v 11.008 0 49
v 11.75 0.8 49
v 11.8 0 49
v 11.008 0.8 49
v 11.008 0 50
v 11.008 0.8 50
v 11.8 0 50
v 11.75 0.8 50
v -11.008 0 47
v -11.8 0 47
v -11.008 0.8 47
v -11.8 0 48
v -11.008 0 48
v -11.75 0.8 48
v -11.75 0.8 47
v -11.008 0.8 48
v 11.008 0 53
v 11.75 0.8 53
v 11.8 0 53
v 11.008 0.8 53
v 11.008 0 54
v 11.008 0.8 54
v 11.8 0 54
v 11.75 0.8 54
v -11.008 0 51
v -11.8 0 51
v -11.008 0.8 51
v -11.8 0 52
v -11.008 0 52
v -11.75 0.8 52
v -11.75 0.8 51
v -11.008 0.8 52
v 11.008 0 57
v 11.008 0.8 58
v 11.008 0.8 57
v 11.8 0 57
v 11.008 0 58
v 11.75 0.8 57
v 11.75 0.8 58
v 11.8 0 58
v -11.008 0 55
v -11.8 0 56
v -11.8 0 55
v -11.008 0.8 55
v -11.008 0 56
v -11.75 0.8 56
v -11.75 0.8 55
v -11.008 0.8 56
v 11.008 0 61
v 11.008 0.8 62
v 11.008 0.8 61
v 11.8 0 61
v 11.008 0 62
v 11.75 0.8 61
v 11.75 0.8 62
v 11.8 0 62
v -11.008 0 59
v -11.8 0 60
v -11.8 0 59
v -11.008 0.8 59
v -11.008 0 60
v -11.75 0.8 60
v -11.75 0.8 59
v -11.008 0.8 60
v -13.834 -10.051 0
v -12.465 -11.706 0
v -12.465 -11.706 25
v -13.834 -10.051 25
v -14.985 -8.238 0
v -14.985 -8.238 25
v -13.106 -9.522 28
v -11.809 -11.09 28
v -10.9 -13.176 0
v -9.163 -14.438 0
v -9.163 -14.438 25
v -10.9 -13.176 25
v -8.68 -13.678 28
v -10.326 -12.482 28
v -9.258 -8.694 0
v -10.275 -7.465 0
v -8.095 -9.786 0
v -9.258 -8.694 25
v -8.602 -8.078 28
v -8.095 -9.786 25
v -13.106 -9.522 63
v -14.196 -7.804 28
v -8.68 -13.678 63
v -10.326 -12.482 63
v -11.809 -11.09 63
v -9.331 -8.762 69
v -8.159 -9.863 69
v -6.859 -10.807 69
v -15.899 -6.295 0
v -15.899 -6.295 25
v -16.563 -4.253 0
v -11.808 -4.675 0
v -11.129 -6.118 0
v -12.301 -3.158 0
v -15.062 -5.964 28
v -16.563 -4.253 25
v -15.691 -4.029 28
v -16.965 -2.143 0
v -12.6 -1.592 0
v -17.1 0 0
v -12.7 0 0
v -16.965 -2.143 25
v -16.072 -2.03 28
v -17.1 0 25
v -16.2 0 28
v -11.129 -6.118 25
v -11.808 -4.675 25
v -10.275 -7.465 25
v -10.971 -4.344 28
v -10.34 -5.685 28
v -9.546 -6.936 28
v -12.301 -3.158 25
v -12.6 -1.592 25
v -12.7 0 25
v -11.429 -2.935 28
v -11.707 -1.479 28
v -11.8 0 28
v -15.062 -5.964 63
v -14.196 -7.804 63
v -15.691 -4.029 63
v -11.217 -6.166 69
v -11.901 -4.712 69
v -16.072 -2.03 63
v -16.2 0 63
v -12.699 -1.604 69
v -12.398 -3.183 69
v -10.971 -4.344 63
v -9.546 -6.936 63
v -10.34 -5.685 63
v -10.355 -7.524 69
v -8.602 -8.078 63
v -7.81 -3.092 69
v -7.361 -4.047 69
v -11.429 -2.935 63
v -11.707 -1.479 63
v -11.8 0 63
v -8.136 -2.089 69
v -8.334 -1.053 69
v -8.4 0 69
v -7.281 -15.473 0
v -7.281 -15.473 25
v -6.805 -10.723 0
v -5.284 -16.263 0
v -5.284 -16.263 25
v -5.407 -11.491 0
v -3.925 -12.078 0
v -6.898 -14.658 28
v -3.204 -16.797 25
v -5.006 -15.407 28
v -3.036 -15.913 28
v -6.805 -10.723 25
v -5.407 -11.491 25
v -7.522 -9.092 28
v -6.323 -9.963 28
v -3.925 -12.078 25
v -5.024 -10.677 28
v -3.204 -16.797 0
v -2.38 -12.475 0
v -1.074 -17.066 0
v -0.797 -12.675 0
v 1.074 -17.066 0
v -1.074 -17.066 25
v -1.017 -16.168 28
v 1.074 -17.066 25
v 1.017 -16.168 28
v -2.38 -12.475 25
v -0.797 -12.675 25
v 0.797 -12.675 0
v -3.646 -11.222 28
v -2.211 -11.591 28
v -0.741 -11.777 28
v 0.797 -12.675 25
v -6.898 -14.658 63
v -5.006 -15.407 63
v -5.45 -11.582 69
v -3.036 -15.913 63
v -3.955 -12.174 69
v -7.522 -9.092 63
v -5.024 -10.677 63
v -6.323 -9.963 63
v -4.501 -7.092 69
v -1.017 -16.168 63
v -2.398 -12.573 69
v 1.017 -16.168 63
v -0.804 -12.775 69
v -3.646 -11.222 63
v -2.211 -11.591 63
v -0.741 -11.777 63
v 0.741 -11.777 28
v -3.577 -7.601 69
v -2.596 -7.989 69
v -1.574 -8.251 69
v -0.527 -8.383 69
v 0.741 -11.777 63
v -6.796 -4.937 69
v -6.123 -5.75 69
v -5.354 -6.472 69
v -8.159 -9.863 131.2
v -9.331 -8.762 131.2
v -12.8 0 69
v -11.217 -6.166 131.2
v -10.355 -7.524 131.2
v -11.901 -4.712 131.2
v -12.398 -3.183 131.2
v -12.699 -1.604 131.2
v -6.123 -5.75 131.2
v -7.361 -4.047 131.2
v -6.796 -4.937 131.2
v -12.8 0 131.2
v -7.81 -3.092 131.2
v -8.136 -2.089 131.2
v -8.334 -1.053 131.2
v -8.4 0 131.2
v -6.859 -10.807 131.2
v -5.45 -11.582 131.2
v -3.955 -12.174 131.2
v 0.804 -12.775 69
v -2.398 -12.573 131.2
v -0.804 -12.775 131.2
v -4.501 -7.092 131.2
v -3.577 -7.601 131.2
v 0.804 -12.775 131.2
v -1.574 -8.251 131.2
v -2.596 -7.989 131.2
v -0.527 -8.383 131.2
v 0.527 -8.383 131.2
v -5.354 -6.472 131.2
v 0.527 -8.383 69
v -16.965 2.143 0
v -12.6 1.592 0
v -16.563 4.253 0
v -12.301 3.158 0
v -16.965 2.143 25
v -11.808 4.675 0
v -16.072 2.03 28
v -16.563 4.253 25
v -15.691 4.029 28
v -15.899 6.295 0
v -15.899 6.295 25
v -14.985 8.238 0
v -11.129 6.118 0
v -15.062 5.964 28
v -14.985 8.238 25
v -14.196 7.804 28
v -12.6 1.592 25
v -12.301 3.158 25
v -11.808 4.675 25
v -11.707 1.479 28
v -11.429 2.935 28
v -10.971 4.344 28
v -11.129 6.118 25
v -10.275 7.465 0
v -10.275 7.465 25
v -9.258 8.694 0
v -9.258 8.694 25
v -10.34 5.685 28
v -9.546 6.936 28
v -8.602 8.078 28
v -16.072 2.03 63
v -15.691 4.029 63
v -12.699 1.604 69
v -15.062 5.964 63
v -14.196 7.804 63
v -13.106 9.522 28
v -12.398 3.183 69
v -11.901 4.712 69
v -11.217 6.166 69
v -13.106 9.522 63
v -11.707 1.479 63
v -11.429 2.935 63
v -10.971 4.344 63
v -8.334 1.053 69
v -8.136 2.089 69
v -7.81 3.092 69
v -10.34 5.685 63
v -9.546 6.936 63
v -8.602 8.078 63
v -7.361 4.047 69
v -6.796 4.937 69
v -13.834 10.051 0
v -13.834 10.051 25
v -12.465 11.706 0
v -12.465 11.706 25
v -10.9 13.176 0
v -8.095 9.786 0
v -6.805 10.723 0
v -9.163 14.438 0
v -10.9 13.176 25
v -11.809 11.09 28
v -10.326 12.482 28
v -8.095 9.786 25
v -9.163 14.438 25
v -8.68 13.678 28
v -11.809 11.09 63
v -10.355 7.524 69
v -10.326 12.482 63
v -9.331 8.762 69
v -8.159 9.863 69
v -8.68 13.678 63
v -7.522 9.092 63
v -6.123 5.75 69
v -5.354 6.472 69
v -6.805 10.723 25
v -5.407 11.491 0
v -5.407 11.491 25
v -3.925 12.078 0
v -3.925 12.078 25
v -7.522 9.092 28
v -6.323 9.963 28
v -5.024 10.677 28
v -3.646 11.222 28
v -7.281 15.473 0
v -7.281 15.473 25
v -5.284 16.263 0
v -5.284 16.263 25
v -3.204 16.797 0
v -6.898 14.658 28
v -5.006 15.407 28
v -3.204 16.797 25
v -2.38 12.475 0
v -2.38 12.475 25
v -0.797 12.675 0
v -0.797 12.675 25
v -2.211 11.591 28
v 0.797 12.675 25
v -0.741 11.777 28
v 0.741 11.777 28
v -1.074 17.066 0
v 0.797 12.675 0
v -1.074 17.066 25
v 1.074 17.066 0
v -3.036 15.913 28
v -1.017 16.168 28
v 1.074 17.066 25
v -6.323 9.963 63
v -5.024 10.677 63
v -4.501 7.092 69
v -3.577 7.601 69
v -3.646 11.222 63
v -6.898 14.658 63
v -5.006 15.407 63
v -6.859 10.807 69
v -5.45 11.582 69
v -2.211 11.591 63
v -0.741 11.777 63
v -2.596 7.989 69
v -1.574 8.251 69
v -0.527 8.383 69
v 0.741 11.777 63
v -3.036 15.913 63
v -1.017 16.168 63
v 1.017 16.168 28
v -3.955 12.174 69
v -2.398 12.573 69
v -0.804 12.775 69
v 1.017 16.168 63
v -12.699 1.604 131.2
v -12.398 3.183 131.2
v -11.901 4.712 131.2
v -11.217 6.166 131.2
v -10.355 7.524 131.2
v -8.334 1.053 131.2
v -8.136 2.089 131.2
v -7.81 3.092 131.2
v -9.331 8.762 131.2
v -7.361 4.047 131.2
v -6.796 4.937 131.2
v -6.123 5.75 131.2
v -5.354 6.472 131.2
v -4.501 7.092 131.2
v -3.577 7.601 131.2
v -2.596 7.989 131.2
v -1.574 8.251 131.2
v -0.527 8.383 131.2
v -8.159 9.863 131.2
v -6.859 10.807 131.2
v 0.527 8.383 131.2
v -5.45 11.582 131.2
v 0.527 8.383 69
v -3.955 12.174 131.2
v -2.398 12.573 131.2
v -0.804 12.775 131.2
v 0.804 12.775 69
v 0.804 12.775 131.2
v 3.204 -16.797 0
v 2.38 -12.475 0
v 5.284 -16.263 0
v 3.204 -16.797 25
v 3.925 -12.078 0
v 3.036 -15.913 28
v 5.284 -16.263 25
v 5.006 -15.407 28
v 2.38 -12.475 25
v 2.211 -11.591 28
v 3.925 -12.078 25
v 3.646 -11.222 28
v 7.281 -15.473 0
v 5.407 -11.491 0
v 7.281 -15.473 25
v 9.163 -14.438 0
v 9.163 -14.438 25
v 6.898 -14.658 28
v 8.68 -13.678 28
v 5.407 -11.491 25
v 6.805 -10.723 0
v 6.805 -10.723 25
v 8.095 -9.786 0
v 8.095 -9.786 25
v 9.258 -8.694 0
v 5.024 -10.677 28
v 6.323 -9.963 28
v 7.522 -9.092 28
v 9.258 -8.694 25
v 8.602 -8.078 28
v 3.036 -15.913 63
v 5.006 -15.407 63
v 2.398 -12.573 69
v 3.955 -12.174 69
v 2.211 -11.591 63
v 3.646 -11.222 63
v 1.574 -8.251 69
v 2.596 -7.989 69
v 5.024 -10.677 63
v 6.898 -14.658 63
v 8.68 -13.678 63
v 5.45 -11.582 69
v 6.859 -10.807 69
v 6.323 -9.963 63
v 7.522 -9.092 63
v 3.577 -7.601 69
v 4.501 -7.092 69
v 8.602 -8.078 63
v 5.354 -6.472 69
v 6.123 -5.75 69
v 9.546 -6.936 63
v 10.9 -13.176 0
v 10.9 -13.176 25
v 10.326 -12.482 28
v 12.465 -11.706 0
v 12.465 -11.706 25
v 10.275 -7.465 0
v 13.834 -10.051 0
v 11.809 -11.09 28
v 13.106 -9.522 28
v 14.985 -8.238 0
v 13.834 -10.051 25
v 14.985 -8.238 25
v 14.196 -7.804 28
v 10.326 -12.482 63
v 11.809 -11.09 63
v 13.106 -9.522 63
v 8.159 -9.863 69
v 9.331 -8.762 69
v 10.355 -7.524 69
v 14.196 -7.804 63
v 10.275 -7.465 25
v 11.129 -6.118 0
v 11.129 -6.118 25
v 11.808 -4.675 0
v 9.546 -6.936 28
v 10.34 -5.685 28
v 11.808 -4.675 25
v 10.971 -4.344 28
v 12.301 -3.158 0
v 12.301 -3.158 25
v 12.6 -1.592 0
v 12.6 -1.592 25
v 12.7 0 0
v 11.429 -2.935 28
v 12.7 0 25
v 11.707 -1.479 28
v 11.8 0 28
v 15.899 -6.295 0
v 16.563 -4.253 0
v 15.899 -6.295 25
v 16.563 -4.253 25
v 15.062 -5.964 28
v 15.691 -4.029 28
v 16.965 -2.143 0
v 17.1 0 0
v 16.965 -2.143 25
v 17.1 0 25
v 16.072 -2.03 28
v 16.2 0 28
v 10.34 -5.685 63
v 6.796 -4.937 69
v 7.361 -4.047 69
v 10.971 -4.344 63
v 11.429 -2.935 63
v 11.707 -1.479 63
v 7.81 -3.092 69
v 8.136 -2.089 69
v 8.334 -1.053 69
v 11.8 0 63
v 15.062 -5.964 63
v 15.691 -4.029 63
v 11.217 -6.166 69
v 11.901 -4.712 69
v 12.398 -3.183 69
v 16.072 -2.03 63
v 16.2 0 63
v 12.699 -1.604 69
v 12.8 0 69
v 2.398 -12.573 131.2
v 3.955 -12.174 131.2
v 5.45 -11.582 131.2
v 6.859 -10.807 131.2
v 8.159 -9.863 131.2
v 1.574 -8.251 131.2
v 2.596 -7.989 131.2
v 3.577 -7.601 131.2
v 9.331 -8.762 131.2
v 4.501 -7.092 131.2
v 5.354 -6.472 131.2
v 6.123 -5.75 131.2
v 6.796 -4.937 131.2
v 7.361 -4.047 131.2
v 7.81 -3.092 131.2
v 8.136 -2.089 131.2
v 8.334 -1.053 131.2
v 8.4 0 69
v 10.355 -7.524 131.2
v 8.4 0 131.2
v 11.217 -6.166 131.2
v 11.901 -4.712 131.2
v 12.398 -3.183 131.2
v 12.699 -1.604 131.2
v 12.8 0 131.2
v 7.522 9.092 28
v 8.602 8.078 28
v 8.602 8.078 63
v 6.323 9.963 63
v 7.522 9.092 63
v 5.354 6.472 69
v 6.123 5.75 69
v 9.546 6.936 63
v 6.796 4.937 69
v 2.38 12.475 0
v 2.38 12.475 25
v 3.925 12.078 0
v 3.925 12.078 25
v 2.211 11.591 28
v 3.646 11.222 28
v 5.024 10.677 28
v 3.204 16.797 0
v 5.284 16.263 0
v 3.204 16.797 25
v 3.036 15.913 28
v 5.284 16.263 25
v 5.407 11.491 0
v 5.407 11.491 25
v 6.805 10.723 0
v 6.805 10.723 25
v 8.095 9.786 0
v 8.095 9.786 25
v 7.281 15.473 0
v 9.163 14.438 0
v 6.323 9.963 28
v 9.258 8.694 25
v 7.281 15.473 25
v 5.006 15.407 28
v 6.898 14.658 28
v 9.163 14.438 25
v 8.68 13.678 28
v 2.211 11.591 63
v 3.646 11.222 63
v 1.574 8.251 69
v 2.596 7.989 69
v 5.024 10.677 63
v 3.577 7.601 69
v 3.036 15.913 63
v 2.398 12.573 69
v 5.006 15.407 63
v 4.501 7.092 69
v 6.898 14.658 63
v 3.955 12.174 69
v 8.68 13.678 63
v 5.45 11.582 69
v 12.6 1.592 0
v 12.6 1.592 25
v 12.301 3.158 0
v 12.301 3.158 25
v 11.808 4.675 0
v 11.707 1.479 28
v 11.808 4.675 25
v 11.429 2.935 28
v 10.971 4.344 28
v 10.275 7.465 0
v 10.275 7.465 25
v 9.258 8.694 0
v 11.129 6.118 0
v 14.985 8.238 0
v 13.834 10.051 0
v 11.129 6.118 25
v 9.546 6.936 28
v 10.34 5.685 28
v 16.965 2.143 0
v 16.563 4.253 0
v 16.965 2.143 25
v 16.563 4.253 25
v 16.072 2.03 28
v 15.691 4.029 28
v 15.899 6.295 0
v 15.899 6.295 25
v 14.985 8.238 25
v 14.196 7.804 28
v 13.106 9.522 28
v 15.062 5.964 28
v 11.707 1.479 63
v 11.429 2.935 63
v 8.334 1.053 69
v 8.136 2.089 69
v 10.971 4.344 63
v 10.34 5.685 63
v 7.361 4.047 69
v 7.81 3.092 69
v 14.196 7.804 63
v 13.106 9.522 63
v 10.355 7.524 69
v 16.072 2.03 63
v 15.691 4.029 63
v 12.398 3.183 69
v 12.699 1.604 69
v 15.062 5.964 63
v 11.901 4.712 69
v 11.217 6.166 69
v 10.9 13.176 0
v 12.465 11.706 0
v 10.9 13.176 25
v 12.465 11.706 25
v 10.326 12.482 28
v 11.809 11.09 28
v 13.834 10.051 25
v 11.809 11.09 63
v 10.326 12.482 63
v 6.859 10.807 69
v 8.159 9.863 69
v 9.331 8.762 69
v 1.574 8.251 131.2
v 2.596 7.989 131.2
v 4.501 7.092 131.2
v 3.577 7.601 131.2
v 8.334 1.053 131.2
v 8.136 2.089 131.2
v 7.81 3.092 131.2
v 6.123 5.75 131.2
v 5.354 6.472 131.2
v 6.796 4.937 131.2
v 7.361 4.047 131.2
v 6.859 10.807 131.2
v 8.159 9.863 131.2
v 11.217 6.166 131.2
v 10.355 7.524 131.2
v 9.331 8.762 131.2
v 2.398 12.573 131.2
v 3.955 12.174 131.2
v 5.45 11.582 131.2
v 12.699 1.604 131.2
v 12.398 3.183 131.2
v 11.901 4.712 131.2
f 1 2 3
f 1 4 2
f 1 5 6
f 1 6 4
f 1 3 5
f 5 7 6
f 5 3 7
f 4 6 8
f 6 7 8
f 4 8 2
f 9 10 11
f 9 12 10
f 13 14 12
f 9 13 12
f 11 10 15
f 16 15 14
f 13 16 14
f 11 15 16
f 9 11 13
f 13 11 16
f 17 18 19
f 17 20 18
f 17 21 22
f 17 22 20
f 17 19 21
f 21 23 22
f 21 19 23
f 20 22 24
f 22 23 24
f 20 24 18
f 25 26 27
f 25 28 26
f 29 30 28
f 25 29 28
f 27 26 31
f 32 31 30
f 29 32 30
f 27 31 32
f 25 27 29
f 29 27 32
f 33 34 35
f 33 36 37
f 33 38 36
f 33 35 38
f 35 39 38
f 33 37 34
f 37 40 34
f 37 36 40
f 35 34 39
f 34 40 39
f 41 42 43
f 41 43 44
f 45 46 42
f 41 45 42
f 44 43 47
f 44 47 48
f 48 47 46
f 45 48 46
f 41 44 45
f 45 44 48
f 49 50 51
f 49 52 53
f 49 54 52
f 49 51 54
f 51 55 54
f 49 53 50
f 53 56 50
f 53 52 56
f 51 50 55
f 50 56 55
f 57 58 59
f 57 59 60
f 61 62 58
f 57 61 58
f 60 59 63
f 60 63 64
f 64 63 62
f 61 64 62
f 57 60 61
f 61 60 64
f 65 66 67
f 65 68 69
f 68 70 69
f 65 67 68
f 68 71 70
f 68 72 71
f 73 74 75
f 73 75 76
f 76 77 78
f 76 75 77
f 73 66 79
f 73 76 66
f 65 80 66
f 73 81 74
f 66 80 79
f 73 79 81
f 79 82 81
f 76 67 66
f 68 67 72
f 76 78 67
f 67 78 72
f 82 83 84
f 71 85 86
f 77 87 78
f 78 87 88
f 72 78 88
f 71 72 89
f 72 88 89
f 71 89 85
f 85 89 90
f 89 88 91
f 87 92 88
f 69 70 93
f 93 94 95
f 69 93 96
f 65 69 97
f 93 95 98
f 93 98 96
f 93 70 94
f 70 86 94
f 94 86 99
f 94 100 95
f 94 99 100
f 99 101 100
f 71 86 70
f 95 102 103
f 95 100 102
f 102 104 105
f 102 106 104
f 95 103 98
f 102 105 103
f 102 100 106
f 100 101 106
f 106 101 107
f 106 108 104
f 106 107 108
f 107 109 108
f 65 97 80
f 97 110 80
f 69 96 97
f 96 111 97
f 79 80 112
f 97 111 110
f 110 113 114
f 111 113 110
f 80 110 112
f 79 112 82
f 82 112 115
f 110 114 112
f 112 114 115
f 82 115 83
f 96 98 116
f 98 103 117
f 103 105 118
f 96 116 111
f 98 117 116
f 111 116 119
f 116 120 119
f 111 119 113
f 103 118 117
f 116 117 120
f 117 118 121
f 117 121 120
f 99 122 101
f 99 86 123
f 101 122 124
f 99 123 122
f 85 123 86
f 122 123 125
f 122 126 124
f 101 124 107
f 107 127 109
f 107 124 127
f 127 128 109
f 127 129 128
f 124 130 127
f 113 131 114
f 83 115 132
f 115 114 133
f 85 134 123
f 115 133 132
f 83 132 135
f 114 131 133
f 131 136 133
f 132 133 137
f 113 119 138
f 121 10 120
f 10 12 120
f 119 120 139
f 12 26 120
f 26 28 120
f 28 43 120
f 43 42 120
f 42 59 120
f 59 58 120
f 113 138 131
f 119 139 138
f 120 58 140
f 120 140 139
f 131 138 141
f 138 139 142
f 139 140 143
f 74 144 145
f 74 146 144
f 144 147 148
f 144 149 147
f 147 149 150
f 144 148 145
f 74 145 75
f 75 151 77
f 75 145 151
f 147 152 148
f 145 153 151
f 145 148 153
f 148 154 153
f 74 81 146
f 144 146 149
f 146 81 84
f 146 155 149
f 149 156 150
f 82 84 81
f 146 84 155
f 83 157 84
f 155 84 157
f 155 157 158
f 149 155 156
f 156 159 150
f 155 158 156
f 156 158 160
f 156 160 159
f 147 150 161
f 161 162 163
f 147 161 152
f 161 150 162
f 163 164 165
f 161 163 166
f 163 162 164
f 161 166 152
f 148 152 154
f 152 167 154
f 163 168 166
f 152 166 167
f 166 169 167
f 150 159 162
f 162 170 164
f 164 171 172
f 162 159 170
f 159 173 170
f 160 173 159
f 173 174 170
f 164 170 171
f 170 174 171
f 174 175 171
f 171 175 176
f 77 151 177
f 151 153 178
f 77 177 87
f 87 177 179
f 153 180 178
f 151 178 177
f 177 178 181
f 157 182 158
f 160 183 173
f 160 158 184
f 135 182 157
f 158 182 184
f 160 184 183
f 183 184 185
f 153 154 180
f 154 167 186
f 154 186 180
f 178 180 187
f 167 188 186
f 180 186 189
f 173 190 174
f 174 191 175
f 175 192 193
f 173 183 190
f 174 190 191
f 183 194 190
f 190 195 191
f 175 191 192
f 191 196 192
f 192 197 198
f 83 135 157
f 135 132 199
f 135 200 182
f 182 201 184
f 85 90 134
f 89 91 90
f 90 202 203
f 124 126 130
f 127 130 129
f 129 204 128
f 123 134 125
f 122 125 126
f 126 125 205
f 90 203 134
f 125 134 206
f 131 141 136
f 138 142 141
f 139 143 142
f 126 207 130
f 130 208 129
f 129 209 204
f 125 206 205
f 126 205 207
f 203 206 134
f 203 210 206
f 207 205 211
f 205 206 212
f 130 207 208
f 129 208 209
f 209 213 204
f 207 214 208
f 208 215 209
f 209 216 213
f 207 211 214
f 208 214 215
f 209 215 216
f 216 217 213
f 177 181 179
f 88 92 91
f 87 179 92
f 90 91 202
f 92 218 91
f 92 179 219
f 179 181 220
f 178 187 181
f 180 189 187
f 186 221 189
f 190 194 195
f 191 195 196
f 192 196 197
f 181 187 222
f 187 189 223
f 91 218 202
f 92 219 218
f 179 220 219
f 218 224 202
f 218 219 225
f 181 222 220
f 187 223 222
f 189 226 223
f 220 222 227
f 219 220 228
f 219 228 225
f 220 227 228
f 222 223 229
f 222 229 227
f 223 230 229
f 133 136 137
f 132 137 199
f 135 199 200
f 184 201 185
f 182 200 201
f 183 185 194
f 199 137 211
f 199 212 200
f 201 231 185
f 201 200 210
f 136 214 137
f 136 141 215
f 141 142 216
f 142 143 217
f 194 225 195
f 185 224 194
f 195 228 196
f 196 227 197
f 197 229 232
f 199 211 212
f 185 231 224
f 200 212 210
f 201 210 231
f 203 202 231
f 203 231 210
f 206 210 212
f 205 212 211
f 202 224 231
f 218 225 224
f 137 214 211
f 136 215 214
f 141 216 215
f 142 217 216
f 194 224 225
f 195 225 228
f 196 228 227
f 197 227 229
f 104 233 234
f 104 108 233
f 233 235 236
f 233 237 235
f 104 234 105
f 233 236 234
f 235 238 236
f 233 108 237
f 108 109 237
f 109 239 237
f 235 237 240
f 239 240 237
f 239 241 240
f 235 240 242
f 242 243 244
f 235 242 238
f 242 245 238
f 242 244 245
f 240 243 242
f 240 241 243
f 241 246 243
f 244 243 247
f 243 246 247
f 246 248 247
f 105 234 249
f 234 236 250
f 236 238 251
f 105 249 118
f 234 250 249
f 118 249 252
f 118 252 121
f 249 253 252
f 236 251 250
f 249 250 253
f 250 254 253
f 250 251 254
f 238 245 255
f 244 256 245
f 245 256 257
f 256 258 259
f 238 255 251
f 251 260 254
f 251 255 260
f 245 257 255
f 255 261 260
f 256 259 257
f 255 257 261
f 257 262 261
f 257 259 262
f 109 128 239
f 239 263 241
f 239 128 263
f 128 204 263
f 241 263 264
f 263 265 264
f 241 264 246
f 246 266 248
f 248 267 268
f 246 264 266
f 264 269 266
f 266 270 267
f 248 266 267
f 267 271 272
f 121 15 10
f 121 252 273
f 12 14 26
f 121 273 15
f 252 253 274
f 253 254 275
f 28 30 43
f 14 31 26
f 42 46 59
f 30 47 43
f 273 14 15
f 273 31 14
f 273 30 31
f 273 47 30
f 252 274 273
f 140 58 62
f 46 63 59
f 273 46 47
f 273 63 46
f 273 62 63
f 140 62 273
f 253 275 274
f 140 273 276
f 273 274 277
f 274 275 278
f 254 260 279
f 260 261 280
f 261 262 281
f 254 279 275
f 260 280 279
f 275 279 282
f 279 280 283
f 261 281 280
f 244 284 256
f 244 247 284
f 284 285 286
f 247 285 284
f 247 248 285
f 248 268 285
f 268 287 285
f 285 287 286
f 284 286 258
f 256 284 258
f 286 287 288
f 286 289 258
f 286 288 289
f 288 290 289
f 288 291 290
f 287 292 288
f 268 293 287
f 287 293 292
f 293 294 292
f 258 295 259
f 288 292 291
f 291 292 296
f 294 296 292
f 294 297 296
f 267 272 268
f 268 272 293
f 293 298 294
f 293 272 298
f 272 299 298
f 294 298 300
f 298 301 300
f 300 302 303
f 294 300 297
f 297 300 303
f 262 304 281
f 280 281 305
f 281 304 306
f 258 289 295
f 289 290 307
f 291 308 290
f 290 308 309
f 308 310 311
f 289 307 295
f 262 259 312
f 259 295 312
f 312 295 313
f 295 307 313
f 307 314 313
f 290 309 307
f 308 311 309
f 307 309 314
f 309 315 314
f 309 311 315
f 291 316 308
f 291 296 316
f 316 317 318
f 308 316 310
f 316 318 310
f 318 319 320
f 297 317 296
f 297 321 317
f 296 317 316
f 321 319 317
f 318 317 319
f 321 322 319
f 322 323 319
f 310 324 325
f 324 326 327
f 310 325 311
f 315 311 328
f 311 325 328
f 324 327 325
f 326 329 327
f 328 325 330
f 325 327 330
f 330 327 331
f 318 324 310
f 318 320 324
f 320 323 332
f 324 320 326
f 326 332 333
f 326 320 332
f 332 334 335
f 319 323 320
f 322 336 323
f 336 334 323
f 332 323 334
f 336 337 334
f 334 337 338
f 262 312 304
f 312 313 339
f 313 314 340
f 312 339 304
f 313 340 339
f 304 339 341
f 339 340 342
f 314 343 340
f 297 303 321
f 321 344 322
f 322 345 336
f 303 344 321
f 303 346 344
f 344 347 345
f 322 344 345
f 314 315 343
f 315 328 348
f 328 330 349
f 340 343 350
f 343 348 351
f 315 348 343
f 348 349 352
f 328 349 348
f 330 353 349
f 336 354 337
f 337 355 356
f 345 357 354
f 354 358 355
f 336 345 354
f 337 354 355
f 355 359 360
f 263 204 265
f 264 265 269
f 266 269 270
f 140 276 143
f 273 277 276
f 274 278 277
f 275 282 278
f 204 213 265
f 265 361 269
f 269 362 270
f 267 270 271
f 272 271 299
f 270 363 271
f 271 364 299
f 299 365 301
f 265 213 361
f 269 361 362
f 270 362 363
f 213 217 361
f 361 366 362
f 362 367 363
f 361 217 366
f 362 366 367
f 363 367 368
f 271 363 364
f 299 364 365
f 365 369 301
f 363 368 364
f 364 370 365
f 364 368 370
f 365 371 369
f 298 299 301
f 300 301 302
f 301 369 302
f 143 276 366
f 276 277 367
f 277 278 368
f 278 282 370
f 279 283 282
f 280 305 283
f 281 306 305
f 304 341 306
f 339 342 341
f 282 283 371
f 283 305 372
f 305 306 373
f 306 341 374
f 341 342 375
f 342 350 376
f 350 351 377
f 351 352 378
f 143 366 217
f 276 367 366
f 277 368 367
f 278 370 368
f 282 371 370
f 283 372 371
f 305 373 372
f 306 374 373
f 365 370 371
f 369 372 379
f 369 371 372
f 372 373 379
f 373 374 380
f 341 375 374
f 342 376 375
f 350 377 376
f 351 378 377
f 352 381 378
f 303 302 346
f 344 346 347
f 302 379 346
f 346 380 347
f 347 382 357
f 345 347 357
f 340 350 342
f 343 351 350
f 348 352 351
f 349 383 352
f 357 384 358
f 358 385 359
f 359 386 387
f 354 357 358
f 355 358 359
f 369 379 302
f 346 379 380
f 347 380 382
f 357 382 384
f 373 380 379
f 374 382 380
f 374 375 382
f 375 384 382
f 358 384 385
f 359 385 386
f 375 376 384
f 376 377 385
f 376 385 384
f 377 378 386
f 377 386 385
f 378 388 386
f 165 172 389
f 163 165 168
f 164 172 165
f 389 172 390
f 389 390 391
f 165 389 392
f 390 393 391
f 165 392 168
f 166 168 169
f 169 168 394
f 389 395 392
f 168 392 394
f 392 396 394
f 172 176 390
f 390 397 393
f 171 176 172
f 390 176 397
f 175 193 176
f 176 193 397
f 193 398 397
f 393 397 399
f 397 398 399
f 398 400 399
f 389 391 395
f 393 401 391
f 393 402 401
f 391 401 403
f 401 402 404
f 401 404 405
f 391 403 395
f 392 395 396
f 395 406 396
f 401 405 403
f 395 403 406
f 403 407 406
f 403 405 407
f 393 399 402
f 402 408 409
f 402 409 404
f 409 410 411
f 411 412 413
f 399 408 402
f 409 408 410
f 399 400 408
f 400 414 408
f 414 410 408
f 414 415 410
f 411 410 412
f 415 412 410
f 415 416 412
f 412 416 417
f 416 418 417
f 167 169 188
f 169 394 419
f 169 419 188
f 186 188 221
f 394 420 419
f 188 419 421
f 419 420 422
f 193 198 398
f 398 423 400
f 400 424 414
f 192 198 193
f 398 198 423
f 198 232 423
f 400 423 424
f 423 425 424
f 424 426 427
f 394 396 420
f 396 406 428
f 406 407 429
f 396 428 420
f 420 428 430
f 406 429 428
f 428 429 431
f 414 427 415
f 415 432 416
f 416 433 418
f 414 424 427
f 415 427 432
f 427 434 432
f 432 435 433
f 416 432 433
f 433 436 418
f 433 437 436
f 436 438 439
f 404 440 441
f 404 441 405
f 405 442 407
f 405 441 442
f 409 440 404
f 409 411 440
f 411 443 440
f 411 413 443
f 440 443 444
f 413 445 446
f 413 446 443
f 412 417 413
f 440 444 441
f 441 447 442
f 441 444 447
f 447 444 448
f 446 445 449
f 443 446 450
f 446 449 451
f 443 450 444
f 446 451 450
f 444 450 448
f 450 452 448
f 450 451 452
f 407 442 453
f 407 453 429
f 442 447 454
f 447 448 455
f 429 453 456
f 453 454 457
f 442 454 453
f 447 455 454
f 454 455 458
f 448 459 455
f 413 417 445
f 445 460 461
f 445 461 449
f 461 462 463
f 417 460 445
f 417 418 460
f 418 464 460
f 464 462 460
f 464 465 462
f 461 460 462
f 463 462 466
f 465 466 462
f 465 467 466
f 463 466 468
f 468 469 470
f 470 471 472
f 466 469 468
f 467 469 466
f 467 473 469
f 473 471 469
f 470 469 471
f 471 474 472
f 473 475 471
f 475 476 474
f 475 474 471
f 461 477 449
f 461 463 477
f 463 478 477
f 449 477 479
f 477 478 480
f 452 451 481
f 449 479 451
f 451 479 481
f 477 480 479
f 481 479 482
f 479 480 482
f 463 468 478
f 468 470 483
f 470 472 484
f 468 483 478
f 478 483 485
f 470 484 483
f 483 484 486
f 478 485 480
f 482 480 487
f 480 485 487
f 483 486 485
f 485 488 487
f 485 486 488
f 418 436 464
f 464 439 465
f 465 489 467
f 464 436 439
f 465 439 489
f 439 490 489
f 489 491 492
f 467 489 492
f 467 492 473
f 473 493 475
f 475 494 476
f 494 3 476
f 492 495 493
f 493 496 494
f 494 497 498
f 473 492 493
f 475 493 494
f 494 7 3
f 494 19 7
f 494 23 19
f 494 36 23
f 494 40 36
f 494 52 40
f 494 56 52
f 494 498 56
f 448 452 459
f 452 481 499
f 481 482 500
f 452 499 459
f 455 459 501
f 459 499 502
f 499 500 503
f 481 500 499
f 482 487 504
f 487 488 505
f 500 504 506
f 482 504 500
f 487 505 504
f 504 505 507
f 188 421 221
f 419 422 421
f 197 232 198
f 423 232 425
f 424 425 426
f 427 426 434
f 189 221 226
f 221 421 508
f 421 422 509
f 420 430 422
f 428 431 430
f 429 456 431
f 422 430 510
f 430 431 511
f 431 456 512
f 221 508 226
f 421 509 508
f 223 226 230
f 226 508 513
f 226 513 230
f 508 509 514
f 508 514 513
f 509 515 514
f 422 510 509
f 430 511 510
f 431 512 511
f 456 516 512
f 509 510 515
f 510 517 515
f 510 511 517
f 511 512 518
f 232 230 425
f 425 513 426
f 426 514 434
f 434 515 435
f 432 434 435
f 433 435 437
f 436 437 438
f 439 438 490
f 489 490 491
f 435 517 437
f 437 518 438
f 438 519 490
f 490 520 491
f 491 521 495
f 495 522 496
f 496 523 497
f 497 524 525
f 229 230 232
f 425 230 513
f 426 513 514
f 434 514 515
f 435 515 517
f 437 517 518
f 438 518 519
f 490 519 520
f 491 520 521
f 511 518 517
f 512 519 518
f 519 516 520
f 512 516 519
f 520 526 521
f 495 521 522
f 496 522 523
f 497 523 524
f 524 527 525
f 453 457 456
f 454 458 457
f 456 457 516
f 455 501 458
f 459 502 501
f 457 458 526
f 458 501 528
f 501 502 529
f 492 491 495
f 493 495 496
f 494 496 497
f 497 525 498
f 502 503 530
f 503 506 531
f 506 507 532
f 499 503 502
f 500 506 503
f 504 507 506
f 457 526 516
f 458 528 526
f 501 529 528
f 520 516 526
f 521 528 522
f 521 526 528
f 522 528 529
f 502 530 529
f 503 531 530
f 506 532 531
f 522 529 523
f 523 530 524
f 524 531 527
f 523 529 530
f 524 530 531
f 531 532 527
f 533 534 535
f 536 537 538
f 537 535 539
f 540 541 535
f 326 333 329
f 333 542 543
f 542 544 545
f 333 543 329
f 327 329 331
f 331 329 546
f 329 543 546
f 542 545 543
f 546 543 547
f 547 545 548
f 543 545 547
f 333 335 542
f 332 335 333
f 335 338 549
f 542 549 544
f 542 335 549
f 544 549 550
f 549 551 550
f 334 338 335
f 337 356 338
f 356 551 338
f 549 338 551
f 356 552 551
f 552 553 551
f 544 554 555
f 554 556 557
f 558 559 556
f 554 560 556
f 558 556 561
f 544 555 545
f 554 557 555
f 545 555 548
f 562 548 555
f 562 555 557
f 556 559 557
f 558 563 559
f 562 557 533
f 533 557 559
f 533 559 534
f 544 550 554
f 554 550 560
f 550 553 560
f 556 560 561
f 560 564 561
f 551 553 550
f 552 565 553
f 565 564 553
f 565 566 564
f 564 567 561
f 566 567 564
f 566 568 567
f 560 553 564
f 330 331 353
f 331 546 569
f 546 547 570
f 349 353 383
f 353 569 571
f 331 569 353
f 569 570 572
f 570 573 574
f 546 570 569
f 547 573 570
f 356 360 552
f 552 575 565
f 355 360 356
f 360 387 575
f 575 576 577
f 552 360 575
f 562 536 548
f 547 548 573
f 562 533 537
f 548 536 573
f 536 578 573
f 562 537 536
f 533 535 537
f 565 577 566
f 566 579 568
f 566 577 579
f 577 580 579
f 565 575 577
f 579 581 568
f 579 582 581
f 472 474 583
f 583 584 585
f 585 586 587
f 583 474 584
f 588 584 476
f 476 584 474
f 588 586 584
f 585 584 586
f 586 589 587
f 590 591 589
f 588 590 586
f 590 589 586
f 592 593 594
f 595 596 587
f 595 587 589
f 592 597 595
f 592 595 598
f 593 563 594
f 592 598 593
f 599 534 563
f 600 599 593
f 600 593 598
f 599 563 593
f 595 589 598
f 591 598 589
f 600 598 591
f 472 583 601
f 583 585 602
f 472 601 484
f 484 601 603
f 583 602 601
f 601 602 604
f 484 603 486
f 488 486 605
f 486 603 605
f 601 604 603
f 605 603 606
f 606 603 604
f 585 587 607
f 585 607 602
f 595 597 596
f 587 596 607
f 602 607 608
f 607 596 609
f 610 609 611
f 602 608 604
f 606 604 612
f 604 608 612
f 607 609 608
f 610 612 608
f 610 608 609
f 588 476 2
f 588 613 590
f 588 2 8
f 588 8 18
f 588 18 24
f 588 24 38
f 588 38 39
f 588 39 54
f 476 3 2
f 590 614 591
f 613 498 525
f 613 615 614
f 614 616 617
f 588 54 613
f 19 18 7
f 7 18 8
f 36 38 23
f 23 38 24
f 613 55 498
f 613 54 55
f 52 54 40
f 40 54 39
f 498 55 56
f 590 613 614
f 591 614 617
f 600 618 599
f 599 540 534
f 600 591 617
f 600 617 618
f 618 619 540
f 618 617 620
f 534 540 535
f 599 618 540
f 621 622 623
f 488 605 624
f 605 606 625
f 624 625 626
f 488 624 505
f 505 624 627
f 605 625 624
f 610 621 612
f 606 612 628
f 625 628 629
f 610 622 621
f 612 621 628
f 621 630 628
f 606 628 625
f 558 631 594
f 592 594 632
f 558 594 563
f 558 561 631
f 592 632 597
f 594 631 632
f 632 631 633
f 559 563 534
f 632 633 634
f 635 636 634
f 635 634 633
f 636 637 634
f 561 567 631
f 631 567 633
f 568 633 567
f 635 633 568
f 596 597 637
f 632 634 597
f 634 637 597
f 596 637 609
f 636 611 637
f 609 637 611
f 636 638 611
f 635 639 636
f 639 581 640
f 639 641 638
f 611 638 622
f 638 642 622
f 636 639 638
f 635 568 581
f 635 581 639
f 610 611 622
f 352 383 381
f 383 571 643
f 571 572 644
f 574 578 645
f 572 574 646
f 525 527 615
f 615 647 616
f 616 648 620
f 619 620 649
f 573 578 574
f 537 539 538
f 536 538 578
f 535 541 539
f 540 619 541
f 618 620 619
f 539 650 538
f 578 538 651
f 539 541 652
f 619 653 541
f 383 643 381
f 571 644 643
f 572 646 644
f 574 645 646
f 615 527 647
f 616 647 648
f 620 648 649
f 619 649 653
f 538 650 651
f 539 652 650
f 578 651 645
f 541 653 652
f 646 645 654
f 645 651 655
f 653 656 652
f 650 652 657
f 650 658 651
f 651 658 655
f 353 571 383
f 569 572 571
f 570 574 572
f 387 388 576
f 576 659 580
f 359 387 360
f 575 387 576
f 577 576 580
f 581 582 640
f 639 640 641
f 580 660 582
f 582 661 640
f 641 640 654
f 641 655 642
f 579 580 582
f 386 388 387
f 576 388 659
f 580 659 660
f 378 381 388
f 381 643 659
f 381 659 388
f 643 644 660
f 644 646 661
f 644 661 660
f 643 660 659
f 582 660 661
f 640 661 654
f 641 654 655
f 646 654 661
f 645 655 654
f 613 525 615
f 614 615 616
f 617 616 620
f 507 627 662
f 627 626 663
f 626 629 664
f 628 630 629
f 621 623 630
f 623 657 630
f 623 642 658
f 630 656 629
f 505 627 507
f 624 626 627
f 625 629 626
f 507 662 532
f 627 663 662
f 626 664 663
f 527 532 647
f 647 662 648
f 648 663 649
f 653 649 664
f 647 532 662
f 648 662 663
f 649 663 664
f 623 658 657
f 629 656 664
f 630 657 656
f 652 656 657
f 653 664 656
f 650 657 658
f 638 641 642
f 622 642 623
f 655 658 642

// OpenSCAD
// Need a tray for a ceramic planter, so excess water is caught
//
// Some of the requirements:
//
// - has to fit on 3D printer bed, so this means based on required dimensions,
//   has to be printed in at least two pieces
//
// - base interior diameter 172 mm
//
// - inner diameter at top of lip 185 mm, at a height ~20 mm
//

use <../libraries/MCAD/2Dshapes.scad>

// small number
e = 1/128;

nozzle_dia = 0.4;

pole_OD = 25.4;
pole_stem_OD = 23.6;
pole_stem_threaded_h = 18.0;
thread_pitch = 4.0;
thread_depth = 0.8;
thread_major_D = pole_stem_OD;
thread_minor_D = thread_major_D - 2* (thread_depth);

pole_stem_h = 35.0;
pole_cup_h = 25.0;

pole_ID = 20.2;
cup_past_stem = 25.0;
// "cap" is cup + stem
cap_thickness = 11.0 * nozzle_dia;

cup_inner_R = (1/2) * pole_OD;
cup_outer_R = cup_inner_R + cap_thickness;
stem_inner_R = (1/2) * pole_stem_OD;
stem_outer_R = stem_inner_R + cap_thickness;

cup2stem_h = 3.0;

insert_OD = 25.6;
insert_thickness = 11.0 * nozzle_dia;
insert_ID = insert_OD - (2 * insert_thickness); 
insert_inner_R = insert_ID / 2;
insert_outer_R = insert_OD / 2;

stem2insert_h = 6.0;

insert_inner_height = 49.5;
insert_outer_height = 12.7; // this plus inner height is the height beyond pole

// 2D profile
module sideView () {
    start_cup_h = 0;
    start_stem_h = pole_cup_h + cup2stem_h;
    start_insert_h = start_stem_h + pole_stem_h + stem2insert_h;
    stop_insert_h = start_insert_h + insert_outer_height + insert_inner_height;
    profile_points = [
        // inside of cup
        [ cup_inner_R, start_cup_h], [ cup_inner_R, pole_cup_h], 
        // inside of stem
        [ stem_inner_R, start_stem_h], [ stem_inner_R, start_stem_h + pole_stem_h ], 
        // inside of insert
        [ insert_inner_R, start_insert_h], [insert_inner_R, stop_insert_h],

        // going down
        // outside of insert
         [insert_outer_R, stop_insert_h], [insert_outer_R, start_insert_h], 
         // outside of stem
         [stem_outer_R, start_stem_h + pole_stem_h], [stem_outer_R, start_stem_h],         
         // outside of cup
         [cup_outer_R, start_cup_h + pole_cup_h], [cup_outer_R, start_cup_h],   
    ];

    polygon(profile_points);
}


module revolve () {
    $fn=50;
    rotate_extrude(angle = 360, convexity = 10) {
        sideView();
    }
}

module tooth() {
    h = (1/4) * thread_pitch;
    depth = thread_depth;
    linear_extrude(height = h) {
        square(size = [depth,depth], center = false);
    }

}

module thread_teeth () {
    translate([0,0,0]) {
        for (i = [0 : 3]) {
            translate([0, 0, i * thread_pitch]) tooth();
        }
    }
}

module full () {

    // TODO: set screw hole(s)
    use_set_screws = false;
    // plastic "teeth"
    use_thread_teeth = true;
    thread_teeth_start_h = pole_cup_h + cup2stem_h + pole_stem_h - pole_stem_threaded_h + thread_pitch;
    thread_teeth_start_x = stem_inner_R - thread_depth;
    thread_teeth_start_minus_x = - (stem_inner_R);

    //intersection() {
    revolve();
    if (use_thread_teeth) {
        translate([thread_teeth_start_x + e, 0, thread_teeth_start_h]) {
            thread_teeth();
        }
        translate([thread_teeth_start_minus_x - e, 0, thread_teeth_start_h - (1/2)*thread_pitch]) {
            thread_teeth();
        }


    }
    //}
}

//%thread_teeth();
//%sideView();
full();
